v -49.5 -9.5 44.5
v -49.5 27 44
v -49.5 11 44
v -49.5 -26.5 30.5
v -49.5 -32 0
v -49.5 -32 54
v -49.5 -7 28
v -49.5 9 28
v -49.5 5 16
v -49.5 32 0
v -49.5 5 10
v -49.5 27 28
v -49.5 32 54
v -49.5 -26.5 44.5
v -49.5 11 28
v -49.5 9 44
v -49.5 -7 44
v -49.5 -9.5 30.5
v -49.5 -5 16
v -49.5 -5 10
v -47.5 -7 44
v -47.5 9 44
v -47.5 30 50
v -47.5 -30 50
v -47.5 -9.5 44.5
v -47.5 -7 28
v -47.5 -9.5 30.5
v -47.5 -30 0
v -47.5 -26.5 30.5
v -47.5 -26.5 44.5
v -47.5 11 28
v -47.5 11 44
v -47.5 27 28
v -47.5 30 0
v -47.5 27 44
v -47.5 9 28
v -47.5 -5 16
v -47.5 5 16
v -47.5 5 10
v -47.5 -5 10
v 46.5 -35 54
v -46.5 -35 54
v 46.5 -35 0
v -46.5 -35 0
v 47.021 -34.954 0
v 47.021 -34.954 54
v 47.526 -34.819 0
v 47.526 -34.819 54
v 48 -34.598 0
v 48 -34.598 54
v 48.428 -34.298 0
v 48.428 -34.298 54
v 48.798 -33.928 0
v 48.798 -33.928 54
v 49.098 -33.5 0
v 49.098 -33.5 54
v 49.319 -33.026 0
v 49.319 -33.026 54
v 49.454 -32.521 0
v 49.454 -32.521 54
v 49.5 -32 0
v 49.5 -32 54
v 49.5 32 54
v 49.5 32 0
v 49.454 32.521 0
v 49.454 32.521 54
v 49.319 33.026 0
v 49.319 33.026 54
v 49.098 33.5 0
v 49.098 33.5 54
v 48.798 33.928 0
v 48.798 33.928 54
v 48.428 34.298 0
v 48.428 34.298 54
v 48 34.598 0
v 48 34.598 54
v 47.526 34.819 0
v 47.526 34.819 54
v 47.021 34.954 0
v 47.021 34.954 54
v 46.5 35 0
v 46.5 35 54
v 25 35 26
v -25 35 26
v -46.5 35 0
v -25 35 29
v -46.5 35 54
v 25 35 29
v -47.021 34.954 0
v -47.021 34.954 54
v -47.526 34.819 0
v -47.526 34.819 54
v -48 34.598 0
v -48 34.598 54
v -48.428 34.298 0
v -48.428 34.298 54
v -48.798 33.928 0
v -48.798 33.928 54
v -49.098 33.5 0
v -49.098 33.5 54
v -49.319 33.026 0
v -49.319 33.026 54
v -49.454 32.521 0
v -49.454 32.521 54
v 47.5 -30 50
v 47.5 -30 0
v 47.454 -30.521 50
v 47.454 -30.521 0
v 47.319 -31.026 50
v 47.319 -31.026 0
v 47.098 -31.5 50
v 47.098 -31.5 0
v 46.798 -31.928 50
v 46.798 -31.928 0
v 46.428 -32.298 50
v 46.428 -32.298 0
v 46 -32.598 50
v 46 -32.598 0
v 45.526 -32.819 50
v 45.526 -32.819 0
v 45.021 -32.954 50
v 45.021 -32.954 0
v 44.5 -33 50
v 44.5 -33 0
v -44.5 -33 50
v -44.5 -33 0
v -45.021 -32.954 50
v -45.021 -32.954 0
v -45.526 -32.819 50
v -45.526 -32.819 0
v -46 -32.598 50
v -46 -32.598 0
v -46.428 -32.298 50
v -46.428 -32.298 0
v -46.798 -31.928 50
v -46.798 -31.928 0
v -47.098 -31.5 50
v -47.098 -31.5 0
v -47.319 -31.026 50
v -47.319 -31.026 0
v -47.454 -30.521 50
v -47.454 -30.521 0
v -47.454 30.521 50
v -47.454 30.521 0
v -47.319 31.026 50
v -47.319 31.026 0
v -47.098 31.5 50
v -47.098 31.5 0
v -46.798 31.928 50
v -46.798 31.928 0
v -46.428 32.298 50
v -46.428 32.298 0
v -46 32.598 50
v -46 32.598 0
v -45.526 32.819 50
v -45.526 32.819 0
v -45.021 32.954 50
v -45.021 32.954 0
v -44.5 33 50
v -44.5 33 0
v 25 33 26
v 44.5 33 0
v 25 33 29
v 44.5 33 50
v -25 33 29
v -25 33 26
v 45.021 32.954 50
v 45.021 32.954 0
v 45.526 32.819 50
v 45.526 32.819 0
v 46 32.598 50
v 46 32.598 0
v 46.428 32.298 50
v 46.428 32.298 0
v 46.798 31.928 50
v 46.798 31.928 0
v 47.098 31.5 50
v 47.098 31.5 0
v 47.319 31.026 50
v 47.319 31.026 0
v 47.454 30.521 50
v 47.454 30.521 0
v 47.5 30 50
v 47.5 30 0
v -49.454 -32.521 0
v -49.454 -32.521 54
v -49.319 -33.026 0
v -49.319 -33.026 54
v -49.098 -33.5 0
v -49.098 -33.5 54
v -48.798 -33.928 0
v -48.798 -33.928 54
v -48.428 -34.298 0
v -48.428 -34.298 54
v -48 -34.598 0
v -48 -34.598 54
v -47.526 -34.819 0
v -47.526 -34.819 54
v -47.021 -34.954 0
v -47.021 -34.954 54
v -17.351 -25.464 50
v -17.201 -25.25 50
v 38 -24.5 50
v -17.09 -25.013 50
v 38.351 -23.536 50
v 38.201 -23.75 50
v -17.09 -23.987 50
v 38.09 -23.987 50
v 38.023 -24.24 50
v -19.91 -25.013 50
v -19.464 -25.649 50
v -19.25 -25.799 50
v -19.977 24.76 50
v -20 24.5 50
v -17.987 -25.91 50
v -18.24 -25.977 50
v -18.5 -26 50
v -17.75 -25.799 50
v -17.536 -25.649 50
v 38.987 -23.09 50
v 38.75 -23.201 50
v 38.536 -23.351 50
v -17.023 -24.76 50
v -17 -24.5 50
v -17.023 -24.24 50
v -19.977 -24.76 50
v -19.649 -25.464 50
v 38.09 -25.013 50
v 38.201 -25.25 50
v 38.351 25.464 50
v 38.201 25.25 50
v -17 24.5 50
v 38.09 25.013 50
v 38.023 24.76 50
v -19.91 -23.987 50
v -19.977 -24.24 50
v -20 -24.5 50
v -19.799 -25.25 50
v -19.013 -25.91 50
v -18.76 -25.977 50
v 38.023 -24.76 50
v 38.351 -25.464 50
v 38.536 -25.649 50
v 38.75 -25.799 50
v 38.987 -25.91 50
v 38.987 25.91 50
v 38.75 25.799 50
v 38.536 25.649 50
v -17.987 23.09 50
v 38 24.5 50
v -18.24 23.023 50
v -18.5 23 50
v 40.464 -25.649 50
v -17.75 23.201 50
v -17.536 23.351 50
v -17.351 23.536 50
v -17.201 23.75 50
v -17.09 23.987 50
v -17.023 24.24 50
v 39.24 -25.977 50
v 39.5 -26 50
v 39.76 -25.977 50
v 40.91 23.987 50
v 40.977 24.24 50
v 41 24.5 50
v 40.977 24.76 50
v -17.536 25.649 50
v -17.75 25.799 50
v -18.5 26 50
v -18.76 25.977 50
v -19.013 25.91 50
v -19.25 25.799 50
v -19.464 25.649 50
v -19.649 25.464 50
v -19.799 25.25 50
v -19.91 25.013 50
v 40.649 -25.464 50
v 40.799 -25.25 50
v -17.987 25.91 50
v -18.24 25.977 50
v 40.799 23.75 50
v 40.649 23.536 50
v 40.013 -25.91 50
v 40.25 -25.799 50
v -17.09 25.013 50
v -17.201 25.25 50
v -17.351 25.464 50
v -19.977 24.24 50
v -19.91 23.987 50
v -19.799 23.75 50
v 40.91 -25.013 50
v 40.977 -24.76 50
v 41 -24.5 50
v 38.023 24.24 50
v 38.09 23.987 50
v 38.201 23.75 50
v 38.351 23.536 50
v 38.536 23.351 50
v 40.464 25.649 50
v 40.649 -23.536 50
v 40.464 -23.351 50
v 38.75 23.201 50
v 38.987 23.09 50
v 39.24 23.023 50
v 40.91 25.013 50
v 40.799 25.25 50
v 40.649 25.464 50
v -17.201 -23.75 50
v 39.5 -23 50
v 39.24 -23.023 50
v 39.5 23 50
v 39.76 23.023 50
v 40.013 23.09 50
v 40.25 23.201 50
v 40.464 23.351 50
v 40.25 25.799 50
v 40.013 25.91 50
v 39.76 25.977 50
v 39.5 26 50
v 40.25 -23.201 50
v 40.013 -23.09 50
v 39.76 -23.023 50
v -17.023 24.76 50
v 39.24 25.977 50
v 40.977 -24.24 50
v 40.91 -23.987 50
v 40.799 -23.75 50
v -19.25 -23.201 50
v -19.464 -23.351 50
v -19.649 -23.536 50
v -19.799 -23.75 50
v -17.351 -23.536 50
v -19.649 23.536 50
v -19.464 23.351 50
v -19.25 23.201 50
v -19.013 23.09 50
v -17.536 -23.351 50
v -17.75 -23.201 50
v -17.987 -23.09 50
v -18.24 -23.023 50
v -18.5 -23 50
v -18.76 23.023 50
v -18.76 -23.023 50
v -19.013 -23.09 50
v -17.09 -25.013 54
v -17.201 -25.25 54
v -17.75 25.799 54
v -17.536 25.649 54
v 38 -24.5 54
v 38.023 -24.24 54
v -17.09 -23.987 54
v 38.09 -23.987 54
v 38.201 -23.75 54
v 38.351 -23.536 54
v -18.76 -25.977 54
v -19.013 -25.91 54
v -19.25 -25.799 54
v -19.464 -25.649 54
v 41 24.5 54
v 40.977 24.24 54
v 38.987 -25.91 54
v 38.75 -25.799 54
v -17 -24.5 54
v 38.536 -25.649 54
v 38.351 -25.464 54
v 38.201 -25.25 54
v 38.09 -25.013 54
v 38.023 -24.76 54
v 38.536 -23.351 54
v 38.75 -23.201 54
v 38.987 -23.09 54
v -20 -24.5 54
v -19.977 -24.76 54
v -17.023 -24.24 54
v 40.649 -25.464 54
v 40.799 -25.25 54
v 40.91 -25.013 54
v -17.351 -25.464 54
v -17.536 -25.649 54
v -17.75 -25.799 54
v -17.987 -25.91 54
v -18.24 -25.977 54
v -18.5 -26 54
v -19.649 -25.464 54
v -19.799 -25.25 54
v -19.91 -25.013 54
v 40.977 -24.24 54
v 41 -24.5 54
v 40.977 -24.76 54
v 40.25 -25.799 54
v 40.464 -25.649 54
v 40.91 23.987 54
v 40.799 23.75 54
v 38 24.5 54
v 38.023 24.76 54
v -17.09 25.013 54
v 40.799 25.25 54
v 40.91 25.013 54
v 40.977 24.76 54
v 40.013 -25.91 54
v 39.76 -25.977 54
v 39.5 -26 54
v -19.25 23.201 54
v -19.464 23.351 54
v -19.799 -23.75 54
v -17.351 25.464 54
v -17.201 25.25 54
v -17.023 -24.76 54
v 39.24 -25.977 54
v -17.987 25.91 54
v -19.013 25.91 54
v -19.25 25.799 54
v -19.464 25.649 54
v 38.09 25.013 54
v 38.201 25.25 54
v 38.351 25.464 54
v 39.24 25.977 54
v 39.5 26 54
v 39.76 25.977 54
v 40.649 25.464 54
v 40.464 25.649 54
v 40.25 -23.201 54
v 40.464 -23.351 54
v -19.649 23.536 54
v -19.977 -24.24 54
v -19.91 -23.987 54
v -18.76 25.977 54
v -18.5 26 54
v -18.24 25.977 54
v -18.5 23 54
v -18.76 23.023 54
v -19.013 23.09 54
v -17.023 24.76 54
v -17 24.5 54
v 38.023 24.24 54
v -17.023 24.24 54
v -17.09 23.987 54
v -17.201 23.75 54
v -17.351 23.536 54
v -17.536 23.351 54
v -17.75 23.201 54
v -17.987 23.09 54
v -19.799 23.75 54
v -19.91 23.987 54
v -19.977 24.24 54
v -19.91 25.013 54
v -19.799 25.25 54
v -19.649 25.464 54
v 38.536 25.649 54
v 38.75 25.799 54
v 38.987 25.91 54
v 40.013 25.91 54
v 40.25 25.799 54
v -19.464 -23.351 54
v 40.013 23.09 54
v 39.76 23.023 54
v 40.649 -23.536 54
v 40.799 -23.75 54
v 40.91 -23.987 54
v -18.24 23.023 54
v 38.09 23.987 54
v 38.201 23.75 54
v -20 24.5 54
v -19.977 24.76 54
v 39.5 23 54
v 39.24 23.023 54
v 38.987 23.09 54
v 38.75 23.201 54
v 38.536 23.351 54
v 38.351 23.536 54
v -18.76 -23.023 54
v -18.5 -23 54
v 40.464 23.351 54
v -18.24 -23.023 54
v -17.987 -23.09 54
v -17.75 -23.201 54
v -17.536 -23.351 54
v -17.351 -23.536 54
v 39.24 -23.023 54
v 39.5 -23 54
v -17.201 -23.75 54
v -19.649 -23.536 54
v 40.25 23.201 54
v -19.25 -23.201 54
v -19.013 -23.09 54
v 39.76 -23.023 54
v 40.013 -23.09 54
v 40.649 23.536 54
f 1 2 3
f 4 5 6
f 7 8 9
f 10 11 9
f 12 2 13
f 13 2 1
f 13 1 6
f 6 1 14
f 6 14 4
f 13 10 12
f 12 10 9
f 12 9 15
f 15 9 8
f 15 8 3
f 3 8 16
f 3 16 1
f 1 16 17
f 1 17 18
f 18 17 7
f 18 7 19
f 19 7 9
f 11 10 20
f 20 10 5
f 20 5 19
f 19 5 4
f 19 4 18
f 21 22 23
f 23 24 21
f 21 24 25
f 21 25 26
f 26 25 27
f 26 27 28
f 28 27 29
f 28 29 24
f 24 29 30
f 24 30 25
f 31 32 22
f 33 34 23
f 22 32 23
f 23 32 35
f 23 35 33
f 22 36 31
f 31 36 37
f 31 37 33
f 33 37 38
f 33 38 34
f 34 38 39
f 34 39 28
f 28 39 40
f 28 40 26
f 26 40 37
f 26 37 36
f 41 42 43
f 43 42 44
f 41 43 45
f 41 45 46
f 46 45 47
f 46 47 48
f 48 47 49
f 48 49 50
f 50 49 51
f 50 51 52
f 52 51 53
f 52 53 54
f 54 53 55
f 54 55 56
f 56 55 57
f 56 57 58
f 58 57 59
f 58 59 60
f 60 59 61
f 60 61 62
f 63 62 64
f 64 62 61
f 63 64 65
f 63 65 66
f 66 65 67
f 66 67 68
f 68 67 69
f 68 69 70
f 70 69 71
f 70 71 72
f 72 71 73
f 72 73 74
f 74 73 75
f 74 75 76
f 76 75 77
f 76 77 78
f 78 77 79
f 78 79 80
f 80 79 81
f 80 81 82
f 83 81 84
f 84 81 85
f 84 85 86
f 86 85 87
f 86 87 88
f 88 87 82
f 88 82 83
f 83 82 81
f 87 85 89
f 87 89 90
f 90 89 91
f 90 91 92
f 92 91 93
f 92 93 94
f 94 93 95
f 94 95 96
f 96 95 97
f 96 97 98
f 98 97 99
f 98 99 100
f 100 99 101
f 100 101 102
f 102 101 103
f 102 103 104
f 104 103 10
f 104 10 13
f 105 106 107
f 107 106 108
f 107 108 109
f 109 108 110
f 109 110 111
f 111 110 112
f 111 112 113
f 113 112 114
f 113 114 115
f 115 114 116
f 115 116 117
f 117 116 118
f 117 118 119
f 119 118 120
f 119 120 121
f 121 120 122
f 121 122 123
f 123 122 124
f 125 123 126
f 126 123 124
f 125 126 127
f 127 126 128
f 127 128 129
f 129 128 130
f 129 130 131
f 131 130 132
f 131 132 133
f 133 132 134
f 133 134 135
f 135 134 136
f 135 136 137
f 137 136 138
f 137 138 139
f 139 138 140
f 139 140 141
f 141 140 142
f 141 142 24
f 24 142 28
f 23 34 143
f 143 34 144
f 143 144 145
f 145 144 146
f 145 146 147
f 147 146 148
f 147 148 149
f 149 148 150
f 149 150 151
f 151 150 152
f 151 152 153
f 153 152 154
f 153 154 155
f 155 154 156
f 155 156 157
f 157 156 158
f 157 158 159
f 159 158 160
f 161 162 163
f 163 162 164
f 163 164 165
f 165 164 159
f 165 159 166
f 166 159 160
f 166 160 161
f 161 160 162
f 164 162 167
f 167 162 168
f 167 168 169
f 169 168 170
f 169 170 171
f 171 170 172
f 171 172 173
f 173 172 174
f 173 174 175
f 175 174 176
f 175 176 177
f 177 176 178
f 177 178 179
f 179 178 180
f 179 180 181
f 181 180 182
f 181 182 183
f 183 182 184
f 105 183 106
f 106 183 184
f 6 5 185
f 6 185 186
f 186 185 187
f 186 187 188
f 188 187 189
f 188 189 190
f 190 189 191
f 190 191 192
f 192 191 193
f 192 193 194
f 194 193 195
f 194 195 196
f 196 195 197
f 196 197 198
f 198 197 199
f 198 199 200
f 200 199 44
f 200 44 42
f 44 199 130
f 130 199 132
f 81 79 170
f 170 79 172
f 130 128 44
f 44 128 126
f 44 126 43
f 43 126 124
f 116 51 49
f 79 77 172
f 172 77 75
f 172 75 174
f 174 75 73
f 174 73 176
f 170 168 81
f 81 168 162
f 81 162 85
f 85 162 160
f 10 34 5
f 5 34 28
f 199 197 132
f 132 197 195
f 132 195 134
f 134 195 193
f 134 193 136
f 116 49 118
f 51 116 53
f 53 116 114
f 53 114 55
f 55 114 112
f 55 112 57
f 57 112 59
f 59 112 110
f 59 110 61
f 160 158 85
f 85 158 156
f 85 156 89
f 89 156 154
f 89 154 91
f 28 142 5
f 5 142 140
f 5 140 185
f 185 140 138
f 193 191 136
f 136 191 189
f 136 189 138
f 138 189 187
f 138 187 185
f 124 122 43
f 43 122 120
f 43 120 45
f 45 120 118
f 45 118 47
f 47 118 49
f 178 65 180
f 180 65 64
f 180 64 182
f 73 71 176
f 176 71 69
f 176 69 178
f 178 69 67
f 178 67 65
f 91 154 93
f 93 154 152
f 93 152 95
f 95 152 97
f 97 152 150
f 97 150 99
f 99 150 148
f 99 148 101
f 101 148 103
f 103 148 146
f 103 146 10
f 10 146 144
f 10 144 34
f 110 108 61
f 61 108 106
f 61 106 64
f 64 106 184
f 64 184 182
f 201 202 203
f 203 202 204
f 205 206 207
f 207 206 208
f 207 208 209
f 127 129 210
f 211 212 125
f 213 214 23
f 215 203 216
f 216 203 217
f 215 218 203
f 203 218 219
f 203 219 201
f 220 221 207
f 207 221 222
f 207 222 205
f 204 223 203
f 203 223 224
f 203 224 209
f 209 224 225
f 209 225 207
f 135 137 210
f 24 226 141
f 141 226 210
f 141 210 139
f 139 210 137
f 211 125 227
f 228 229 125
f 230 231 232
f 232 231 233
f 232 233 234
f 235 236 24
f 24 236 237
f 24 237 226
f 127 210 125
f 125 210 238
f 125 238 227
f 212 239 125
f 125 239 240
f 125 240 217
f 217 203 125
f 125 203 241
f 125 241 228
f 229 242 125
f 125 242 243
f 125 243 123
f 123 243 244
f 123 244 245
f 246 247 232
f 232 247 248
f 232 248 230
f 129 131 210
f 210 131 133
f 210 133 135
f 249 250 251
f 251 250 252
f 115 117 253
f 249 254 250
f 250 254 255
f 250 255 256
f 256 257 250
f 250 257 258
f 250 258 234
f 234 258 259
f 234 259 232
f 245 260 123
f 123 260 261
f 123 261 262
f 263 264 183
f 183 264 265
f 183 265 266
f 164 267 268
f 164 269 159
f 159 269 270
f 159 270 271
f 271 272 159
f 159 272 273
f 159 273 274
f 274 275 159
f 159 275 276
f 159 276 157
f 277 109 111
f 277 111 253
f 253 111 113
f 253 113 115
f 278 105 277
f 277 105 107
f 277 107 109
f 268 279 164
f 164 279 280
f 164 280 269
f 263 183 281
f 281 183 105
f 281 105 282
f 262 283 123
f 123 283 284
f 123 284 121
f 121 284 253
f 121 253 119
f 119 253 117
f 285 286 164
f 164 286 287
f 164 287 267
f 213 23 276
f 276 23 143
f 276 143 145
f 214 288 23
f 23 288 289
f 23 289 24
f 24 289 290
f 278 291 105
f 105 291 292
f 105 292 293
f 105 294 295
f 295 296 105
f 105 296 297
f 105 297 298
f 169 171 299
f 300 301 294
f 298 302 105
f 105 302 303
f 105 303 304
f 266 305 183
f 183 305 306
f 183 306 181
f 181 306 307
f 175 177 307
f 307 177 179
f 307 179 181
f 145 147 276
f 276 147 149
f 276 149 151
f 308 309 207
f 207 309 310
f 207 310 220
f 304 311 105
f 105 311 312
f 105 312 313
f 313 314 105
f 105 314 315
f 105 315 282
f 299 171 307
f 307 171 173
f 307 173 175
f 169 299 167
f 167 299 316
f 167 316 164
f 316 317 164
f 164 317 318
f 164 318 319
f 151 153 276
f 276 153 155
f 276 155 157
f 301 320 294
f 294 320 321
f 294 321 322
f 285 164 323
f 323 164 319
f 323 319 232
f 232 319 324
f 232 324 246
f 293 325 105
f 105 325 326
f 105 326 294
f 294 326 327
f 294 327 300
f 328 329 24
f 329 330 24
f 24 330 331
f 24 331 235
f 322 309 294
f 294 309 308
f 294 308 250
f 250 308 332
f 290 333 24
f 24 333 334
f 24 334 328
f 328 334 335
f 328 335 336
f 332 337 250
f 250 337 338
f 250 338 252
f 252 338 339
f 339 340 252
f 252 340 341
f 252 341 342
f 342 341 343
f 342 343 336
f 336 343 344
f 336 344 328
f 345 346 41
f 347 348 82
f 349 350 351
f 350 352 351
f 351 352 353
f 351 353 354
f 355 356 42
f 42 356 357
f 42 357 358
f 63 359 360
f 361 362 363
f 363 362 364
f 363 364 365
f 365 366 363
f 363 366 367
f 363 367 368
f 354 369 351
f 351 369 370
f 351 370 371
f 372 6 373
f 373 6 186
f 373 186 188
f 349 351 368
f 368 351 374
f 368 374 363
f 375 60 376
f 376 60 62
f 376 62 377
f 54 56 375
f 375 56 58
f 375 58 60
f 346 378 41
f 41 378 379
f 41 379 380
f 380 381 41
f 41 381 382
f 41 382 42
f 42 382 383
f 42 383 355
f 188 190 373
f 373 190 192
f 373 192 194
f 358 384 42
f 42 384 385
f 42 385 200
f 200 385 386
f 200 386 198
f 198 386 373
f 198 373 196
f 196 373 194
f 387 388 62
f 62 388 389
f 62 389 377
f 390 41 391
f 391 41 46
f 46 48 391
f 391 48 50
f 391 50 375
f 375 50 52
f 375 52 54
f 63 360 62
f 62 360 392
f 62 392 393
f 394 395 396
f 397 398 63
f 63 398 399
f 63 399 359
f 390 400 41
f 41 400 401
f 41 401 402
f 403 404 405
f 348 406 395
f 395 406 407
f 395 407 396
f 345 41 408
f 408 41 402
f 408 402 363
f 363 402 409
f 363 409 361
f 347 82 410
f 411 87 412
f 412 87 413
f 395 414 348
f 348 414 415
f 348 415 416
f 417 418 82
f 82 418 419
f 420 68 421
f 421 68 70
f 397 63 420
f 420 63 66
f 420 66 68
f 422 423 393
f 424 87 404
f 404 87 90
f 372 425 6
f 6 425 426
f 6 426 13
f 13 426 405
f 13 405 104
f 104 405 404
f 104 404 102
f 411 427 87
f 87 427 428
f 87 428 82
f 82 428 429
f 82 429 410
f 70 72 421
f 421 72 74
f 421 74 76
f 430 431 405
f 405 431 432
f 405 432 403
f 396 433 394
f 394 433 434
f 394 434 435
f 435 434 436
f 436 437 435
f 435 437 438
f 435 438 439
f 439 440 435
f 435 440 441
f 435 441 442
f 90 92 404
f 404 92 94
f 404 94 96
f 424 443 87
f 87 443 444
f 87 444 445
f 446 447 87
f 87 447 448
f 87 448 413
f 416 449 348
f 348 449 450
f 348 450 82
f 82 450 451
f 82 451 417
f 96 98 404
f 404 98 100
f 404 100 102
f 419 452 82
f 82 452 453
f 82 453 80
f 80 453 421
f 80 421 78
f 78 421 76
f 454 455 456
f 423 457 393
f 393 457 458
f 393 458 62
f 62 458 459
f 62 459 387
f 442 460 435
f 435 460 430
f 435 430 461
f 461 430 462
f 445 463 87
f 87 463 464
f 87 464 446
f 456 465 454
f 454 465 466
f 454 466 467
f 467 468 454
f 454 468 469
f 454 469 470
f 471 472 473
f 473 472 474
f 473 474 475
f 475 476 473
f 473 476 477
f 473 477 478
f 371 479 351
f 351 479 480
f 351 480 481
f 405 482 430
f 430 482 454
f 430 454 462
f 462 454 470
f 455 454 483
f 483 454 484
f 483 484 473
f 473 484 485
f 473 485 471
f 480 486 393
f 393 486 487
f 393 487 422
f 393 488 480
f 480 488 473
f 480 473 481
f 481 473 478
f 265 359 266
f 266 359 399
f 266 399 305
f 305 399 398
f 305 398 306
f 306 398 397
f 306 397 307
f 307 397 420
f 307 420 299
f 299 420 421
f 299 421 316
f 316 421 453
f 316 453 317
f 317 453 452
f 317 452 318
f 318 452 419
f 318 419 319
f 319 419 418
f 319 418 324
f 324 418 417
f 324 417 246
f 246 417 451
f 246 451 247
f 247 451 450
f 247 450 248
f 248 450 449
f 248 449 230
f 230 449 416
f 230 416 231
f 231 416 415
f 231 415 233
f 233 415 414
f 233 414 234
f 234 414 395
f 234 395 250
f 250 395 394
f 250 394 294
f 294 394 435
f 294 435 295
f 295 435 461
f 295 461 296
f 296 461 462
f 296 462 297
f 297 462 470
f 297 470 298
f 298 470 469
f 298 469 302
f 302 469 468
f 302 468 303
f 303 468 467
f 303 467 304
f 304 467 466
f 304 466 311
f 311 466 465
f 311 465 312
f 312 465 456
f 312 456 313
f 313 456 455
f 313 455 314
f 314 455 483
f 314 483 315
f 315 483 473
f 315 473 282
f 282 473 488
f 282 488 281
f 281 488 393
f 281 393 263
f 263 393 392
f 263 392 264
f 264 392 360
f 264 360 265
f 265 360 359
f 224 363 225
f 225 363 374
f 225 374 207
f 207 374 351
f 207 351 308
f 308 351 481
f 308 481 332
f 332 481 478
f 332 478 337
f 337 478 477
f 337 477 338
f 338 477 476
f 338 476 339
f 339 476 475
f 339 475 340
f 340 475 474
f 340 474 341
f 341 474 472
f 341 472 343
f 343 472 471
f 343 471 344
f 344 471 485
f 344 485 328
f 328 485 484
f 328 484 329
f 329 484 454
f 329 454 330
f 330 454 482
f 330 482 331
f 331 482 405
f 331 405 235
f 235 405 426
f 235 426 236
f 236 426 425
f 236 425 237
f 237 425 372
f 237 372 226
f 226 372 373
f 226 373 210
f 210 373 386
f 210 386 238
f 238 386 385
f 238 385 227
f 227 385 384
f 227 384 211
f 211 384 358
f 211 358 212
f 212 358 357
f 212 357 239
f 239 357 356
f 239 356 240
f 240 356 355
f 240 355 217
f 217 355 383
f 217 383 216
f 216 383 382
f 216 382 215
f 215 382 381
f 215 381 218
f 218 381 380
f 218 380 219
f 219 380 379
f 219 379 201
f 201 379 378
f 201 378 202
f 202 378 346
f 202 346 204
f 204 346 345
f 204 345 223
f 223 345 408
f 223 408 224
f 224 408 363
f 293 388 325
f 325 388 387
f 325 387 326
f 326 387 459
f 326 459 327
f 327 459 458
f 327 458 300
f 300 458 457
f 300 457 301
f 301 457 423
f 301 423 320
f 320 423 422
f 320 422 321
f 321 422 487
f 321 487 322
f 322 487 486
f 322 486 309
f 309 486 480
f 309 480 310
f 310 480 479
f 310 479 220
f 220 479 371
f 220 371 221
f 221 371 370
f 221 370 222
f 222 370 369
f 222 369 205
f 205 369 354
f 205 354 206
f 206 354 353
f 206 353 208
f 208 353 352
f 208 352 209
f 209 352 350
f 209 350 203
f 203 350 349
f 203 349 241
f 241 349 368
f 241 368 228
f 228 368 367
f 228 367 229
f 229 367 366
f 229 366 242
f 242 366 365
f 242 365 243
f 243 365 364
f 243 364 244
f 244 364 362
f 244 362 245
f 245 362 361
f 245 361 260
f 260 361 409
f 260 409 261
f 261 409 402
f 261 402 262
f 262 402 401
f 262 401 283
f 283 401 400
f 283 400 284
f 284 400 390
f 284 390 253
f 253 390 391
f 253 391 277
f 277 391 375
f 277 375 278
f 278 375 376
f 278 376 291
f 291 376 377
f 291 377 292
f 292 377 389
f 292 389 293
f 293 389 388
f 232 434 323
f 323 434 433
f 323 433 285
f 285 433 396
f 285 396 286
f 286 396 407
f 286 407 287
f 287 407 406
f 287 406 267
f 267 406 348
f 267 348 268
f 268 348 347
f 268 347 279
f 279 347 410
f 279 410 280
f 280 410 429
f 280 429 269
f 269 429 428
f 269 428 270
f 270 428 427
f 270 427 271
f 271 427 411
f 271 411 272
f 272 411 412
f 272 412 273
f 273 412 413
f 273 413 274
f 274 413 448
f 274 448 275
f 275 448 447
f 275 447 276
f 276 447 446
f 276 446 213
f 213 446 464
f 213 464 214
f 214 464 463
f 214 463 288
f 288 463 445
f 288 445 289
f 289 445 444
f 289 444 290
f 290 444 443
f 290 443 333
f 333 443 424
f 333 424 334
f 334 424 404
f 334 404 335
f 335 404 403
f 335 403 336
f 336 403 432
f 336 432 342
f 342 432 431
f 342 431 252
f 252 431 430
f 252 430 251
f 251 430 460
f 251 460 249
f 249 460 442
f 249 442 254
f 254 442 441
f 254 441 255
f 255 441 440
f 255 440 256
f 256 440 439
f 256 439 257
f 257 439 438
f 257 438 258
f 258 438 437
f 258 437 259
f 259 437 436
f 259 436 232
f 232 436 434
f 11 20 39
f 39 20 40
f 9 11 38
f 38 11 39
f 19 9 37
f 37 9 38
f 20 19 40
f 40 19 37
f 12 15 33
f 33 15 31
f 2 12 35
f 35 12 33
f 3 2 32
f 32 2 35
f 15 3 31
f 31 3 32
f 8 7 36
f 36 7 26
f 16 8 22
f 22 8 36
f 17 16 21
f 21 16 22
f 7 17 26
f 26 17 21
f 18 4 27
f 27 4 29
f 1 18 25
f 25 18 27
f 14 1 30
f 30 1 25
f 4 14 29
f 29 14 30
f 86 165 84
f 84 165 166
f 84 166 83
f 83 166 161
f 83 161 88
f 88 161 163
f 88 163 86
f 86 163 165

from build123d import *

# Parameters (mm, degrees)
BOSS_EXTRU_1_DEPTH      = 50
BOSS_EXTRU_2_START      = 50
BOSS_EXTRU_2_DEPTH      = 4
ESQUISSE3_R             = 1.5
ENL_V_MAT_EXTRU_1_DEPTH = 82.186513658
ESQUISSE4_W             = 14
ESQUISSE4_H             = 17
ESQUISSE4_W_2           = 16
ESQUISSE4_H_2           = 16
ESQUISSE4_W_3           = 6
ESQUISSE4_H_3           = 10
ENL_V_MAT_EXTRU_4_DEPTH = 4
ESQUISSE5_W             = 50
ESQUISSE5_H             = 3
ENL_V_MAT_EXTRU_5_DEPTH = 4


with BuildPart() as part:
    # Esquisse1 → Boss.-Extru.1 (new body)
    with BuildSketch(Plane.XY):
        with BuildLine():
            Line((-46.5, -35), (46.5, -35))
            ThreePointArc((46.5, -35), (48.621320344, -34.121320344), (49.5, -32))
            Line((49.5, -32), (49.5, 32))
            ThreePointArc((49.5, 32), (48.621320344, 34.121320344), (46.5, 35))
            Line((46.5, 35), (-46.5, 35))
            ThreePointArc((-46.5, 35), (-48.621320344, 34.121320344), (-49.5, 32))
            Line((-49.5, 32), (-49.5, -32))
            ThreePointArc((-49.5, -32), (-48.621320344, -34.121320344), (-46.5, -35))
        make_face()
        with BuildLine():
            ThreePointArc((44.5, -33), (46.621320344, -32.121320344), (47.5, -30))
            Line((47.5, -30), (47.5, 30))
            ThreePointArc((47.5, 30), (46.621320344, 32.121320344), (44.5, 33))
            Line((44.5, 33), (-44.5, 33))
            ThreePointArc((-44.5, 33), (-46.621320344, 32.121320344), (-47.5, 30))
            Line((-47.5, 30), (-47.5, -30))
            ThreePointArc((-47.5, -30), (-46.621320344, -32.121320344), (-44.5, -33))
            Line((-44.5, -33), (44.5, -33))
        make_face(mode=Mode.SUBTRACT)
    extrude(amount=BOSS_EXTRU_1_DEPTH)

    # Esquisse2 → Boss.-Extru.2 (add)
    with BuildSketch(Plane.XY.offset(BOSS_EXTRU_2_START)):
        with BuildLine():
            Line((-46.5, -35), (46.5, -35))
            ThreePointArc((46.5, -35), (48.621320344, -34.121320344), (49.5, -32))
            Line((49.5, -32), (49.5, 32))
            ThreePointArc((49.5, 32), (48.621320344, 34.121320344), (46.5, 35))
            Line((46.5, 35), (-46.5, 35))
            ThreePointArc((-46.5, 35), (-48.621320344, 34.121320344), (-49.5, 32))
            Line((-49.5, 32), (-49.5, -32))
            ThreePointArc((-49.5, -32), (-48.621320344, -34.121320344), (-46.5, -35))
        make_face()
    extrude(amount=BOSS_EXTRU_2_DEPTH)

    # Esquisse3 → Enlèv. mat.-Extru.1 (cut, through all)
    with BuildSketch(Plane.XY.offset(54)):
        with Locations((39.5, 24.5)):
            Circle(ESQUISSE3_R)
        with Locations((-18.5, 24.5)):
            Circle(ESQUISSE3_R)
        with Locations((39.5, -24.5)):
            Circle(ESQUISSE3_R)
        with Locations((-18.5, -24.5)):
            Circle(ESQUISSE3_R)
    extrude(amount=-ENL_V_MAT_EXTRU_1_DEPTH, mode=Mode.SUBTRACT)

    # Esquisse4 → Enlèv. mat.-Extru.4 (cut)
    with BuildSketch(Plane(origin=(-49.5, 0, 0), x_dir=(0, 0, -1), z_dir=(1, 0, 0))):
        with Locations((-37.5, -18)):
            Rectangle(ESQUISSE4_W, ESQUISSE4_H)
        with Locations((-36, 1)):
            Rectangle(ESQUISSE4_W_2, ESQUISSE4_H_2)
        with Locations((-36, 19)):
            Rectangle(ESQUISSE4_W_2, ESQUISSE4_H_2)
        with Locations((-13, 0)):
            Rectangle(ESQUISSE4_W_3, ESQUISSE4_H_3)
    extrude(amount=ENL_V_MAT_EXTRU_4_DEPTH, mode=Mode.SUBTRACT)

    # Esquisse5 → Enlèv. mat.-Extru.5 (cut)
    with BuildSketch(Plane(origin=(0, 35, 0), x_dir=(1, 0, 0), z_dir=(0, 1, 0))):
        with Locations((0, -27.5)):
            Rectangle(ESQUISSE5_W, ESQUISSE5_H)
    extrude(amount=-ENL_V_MAT_EXTRU_5_DEPTH, mode=Mode.SUBTRACT)


solid = part.part
